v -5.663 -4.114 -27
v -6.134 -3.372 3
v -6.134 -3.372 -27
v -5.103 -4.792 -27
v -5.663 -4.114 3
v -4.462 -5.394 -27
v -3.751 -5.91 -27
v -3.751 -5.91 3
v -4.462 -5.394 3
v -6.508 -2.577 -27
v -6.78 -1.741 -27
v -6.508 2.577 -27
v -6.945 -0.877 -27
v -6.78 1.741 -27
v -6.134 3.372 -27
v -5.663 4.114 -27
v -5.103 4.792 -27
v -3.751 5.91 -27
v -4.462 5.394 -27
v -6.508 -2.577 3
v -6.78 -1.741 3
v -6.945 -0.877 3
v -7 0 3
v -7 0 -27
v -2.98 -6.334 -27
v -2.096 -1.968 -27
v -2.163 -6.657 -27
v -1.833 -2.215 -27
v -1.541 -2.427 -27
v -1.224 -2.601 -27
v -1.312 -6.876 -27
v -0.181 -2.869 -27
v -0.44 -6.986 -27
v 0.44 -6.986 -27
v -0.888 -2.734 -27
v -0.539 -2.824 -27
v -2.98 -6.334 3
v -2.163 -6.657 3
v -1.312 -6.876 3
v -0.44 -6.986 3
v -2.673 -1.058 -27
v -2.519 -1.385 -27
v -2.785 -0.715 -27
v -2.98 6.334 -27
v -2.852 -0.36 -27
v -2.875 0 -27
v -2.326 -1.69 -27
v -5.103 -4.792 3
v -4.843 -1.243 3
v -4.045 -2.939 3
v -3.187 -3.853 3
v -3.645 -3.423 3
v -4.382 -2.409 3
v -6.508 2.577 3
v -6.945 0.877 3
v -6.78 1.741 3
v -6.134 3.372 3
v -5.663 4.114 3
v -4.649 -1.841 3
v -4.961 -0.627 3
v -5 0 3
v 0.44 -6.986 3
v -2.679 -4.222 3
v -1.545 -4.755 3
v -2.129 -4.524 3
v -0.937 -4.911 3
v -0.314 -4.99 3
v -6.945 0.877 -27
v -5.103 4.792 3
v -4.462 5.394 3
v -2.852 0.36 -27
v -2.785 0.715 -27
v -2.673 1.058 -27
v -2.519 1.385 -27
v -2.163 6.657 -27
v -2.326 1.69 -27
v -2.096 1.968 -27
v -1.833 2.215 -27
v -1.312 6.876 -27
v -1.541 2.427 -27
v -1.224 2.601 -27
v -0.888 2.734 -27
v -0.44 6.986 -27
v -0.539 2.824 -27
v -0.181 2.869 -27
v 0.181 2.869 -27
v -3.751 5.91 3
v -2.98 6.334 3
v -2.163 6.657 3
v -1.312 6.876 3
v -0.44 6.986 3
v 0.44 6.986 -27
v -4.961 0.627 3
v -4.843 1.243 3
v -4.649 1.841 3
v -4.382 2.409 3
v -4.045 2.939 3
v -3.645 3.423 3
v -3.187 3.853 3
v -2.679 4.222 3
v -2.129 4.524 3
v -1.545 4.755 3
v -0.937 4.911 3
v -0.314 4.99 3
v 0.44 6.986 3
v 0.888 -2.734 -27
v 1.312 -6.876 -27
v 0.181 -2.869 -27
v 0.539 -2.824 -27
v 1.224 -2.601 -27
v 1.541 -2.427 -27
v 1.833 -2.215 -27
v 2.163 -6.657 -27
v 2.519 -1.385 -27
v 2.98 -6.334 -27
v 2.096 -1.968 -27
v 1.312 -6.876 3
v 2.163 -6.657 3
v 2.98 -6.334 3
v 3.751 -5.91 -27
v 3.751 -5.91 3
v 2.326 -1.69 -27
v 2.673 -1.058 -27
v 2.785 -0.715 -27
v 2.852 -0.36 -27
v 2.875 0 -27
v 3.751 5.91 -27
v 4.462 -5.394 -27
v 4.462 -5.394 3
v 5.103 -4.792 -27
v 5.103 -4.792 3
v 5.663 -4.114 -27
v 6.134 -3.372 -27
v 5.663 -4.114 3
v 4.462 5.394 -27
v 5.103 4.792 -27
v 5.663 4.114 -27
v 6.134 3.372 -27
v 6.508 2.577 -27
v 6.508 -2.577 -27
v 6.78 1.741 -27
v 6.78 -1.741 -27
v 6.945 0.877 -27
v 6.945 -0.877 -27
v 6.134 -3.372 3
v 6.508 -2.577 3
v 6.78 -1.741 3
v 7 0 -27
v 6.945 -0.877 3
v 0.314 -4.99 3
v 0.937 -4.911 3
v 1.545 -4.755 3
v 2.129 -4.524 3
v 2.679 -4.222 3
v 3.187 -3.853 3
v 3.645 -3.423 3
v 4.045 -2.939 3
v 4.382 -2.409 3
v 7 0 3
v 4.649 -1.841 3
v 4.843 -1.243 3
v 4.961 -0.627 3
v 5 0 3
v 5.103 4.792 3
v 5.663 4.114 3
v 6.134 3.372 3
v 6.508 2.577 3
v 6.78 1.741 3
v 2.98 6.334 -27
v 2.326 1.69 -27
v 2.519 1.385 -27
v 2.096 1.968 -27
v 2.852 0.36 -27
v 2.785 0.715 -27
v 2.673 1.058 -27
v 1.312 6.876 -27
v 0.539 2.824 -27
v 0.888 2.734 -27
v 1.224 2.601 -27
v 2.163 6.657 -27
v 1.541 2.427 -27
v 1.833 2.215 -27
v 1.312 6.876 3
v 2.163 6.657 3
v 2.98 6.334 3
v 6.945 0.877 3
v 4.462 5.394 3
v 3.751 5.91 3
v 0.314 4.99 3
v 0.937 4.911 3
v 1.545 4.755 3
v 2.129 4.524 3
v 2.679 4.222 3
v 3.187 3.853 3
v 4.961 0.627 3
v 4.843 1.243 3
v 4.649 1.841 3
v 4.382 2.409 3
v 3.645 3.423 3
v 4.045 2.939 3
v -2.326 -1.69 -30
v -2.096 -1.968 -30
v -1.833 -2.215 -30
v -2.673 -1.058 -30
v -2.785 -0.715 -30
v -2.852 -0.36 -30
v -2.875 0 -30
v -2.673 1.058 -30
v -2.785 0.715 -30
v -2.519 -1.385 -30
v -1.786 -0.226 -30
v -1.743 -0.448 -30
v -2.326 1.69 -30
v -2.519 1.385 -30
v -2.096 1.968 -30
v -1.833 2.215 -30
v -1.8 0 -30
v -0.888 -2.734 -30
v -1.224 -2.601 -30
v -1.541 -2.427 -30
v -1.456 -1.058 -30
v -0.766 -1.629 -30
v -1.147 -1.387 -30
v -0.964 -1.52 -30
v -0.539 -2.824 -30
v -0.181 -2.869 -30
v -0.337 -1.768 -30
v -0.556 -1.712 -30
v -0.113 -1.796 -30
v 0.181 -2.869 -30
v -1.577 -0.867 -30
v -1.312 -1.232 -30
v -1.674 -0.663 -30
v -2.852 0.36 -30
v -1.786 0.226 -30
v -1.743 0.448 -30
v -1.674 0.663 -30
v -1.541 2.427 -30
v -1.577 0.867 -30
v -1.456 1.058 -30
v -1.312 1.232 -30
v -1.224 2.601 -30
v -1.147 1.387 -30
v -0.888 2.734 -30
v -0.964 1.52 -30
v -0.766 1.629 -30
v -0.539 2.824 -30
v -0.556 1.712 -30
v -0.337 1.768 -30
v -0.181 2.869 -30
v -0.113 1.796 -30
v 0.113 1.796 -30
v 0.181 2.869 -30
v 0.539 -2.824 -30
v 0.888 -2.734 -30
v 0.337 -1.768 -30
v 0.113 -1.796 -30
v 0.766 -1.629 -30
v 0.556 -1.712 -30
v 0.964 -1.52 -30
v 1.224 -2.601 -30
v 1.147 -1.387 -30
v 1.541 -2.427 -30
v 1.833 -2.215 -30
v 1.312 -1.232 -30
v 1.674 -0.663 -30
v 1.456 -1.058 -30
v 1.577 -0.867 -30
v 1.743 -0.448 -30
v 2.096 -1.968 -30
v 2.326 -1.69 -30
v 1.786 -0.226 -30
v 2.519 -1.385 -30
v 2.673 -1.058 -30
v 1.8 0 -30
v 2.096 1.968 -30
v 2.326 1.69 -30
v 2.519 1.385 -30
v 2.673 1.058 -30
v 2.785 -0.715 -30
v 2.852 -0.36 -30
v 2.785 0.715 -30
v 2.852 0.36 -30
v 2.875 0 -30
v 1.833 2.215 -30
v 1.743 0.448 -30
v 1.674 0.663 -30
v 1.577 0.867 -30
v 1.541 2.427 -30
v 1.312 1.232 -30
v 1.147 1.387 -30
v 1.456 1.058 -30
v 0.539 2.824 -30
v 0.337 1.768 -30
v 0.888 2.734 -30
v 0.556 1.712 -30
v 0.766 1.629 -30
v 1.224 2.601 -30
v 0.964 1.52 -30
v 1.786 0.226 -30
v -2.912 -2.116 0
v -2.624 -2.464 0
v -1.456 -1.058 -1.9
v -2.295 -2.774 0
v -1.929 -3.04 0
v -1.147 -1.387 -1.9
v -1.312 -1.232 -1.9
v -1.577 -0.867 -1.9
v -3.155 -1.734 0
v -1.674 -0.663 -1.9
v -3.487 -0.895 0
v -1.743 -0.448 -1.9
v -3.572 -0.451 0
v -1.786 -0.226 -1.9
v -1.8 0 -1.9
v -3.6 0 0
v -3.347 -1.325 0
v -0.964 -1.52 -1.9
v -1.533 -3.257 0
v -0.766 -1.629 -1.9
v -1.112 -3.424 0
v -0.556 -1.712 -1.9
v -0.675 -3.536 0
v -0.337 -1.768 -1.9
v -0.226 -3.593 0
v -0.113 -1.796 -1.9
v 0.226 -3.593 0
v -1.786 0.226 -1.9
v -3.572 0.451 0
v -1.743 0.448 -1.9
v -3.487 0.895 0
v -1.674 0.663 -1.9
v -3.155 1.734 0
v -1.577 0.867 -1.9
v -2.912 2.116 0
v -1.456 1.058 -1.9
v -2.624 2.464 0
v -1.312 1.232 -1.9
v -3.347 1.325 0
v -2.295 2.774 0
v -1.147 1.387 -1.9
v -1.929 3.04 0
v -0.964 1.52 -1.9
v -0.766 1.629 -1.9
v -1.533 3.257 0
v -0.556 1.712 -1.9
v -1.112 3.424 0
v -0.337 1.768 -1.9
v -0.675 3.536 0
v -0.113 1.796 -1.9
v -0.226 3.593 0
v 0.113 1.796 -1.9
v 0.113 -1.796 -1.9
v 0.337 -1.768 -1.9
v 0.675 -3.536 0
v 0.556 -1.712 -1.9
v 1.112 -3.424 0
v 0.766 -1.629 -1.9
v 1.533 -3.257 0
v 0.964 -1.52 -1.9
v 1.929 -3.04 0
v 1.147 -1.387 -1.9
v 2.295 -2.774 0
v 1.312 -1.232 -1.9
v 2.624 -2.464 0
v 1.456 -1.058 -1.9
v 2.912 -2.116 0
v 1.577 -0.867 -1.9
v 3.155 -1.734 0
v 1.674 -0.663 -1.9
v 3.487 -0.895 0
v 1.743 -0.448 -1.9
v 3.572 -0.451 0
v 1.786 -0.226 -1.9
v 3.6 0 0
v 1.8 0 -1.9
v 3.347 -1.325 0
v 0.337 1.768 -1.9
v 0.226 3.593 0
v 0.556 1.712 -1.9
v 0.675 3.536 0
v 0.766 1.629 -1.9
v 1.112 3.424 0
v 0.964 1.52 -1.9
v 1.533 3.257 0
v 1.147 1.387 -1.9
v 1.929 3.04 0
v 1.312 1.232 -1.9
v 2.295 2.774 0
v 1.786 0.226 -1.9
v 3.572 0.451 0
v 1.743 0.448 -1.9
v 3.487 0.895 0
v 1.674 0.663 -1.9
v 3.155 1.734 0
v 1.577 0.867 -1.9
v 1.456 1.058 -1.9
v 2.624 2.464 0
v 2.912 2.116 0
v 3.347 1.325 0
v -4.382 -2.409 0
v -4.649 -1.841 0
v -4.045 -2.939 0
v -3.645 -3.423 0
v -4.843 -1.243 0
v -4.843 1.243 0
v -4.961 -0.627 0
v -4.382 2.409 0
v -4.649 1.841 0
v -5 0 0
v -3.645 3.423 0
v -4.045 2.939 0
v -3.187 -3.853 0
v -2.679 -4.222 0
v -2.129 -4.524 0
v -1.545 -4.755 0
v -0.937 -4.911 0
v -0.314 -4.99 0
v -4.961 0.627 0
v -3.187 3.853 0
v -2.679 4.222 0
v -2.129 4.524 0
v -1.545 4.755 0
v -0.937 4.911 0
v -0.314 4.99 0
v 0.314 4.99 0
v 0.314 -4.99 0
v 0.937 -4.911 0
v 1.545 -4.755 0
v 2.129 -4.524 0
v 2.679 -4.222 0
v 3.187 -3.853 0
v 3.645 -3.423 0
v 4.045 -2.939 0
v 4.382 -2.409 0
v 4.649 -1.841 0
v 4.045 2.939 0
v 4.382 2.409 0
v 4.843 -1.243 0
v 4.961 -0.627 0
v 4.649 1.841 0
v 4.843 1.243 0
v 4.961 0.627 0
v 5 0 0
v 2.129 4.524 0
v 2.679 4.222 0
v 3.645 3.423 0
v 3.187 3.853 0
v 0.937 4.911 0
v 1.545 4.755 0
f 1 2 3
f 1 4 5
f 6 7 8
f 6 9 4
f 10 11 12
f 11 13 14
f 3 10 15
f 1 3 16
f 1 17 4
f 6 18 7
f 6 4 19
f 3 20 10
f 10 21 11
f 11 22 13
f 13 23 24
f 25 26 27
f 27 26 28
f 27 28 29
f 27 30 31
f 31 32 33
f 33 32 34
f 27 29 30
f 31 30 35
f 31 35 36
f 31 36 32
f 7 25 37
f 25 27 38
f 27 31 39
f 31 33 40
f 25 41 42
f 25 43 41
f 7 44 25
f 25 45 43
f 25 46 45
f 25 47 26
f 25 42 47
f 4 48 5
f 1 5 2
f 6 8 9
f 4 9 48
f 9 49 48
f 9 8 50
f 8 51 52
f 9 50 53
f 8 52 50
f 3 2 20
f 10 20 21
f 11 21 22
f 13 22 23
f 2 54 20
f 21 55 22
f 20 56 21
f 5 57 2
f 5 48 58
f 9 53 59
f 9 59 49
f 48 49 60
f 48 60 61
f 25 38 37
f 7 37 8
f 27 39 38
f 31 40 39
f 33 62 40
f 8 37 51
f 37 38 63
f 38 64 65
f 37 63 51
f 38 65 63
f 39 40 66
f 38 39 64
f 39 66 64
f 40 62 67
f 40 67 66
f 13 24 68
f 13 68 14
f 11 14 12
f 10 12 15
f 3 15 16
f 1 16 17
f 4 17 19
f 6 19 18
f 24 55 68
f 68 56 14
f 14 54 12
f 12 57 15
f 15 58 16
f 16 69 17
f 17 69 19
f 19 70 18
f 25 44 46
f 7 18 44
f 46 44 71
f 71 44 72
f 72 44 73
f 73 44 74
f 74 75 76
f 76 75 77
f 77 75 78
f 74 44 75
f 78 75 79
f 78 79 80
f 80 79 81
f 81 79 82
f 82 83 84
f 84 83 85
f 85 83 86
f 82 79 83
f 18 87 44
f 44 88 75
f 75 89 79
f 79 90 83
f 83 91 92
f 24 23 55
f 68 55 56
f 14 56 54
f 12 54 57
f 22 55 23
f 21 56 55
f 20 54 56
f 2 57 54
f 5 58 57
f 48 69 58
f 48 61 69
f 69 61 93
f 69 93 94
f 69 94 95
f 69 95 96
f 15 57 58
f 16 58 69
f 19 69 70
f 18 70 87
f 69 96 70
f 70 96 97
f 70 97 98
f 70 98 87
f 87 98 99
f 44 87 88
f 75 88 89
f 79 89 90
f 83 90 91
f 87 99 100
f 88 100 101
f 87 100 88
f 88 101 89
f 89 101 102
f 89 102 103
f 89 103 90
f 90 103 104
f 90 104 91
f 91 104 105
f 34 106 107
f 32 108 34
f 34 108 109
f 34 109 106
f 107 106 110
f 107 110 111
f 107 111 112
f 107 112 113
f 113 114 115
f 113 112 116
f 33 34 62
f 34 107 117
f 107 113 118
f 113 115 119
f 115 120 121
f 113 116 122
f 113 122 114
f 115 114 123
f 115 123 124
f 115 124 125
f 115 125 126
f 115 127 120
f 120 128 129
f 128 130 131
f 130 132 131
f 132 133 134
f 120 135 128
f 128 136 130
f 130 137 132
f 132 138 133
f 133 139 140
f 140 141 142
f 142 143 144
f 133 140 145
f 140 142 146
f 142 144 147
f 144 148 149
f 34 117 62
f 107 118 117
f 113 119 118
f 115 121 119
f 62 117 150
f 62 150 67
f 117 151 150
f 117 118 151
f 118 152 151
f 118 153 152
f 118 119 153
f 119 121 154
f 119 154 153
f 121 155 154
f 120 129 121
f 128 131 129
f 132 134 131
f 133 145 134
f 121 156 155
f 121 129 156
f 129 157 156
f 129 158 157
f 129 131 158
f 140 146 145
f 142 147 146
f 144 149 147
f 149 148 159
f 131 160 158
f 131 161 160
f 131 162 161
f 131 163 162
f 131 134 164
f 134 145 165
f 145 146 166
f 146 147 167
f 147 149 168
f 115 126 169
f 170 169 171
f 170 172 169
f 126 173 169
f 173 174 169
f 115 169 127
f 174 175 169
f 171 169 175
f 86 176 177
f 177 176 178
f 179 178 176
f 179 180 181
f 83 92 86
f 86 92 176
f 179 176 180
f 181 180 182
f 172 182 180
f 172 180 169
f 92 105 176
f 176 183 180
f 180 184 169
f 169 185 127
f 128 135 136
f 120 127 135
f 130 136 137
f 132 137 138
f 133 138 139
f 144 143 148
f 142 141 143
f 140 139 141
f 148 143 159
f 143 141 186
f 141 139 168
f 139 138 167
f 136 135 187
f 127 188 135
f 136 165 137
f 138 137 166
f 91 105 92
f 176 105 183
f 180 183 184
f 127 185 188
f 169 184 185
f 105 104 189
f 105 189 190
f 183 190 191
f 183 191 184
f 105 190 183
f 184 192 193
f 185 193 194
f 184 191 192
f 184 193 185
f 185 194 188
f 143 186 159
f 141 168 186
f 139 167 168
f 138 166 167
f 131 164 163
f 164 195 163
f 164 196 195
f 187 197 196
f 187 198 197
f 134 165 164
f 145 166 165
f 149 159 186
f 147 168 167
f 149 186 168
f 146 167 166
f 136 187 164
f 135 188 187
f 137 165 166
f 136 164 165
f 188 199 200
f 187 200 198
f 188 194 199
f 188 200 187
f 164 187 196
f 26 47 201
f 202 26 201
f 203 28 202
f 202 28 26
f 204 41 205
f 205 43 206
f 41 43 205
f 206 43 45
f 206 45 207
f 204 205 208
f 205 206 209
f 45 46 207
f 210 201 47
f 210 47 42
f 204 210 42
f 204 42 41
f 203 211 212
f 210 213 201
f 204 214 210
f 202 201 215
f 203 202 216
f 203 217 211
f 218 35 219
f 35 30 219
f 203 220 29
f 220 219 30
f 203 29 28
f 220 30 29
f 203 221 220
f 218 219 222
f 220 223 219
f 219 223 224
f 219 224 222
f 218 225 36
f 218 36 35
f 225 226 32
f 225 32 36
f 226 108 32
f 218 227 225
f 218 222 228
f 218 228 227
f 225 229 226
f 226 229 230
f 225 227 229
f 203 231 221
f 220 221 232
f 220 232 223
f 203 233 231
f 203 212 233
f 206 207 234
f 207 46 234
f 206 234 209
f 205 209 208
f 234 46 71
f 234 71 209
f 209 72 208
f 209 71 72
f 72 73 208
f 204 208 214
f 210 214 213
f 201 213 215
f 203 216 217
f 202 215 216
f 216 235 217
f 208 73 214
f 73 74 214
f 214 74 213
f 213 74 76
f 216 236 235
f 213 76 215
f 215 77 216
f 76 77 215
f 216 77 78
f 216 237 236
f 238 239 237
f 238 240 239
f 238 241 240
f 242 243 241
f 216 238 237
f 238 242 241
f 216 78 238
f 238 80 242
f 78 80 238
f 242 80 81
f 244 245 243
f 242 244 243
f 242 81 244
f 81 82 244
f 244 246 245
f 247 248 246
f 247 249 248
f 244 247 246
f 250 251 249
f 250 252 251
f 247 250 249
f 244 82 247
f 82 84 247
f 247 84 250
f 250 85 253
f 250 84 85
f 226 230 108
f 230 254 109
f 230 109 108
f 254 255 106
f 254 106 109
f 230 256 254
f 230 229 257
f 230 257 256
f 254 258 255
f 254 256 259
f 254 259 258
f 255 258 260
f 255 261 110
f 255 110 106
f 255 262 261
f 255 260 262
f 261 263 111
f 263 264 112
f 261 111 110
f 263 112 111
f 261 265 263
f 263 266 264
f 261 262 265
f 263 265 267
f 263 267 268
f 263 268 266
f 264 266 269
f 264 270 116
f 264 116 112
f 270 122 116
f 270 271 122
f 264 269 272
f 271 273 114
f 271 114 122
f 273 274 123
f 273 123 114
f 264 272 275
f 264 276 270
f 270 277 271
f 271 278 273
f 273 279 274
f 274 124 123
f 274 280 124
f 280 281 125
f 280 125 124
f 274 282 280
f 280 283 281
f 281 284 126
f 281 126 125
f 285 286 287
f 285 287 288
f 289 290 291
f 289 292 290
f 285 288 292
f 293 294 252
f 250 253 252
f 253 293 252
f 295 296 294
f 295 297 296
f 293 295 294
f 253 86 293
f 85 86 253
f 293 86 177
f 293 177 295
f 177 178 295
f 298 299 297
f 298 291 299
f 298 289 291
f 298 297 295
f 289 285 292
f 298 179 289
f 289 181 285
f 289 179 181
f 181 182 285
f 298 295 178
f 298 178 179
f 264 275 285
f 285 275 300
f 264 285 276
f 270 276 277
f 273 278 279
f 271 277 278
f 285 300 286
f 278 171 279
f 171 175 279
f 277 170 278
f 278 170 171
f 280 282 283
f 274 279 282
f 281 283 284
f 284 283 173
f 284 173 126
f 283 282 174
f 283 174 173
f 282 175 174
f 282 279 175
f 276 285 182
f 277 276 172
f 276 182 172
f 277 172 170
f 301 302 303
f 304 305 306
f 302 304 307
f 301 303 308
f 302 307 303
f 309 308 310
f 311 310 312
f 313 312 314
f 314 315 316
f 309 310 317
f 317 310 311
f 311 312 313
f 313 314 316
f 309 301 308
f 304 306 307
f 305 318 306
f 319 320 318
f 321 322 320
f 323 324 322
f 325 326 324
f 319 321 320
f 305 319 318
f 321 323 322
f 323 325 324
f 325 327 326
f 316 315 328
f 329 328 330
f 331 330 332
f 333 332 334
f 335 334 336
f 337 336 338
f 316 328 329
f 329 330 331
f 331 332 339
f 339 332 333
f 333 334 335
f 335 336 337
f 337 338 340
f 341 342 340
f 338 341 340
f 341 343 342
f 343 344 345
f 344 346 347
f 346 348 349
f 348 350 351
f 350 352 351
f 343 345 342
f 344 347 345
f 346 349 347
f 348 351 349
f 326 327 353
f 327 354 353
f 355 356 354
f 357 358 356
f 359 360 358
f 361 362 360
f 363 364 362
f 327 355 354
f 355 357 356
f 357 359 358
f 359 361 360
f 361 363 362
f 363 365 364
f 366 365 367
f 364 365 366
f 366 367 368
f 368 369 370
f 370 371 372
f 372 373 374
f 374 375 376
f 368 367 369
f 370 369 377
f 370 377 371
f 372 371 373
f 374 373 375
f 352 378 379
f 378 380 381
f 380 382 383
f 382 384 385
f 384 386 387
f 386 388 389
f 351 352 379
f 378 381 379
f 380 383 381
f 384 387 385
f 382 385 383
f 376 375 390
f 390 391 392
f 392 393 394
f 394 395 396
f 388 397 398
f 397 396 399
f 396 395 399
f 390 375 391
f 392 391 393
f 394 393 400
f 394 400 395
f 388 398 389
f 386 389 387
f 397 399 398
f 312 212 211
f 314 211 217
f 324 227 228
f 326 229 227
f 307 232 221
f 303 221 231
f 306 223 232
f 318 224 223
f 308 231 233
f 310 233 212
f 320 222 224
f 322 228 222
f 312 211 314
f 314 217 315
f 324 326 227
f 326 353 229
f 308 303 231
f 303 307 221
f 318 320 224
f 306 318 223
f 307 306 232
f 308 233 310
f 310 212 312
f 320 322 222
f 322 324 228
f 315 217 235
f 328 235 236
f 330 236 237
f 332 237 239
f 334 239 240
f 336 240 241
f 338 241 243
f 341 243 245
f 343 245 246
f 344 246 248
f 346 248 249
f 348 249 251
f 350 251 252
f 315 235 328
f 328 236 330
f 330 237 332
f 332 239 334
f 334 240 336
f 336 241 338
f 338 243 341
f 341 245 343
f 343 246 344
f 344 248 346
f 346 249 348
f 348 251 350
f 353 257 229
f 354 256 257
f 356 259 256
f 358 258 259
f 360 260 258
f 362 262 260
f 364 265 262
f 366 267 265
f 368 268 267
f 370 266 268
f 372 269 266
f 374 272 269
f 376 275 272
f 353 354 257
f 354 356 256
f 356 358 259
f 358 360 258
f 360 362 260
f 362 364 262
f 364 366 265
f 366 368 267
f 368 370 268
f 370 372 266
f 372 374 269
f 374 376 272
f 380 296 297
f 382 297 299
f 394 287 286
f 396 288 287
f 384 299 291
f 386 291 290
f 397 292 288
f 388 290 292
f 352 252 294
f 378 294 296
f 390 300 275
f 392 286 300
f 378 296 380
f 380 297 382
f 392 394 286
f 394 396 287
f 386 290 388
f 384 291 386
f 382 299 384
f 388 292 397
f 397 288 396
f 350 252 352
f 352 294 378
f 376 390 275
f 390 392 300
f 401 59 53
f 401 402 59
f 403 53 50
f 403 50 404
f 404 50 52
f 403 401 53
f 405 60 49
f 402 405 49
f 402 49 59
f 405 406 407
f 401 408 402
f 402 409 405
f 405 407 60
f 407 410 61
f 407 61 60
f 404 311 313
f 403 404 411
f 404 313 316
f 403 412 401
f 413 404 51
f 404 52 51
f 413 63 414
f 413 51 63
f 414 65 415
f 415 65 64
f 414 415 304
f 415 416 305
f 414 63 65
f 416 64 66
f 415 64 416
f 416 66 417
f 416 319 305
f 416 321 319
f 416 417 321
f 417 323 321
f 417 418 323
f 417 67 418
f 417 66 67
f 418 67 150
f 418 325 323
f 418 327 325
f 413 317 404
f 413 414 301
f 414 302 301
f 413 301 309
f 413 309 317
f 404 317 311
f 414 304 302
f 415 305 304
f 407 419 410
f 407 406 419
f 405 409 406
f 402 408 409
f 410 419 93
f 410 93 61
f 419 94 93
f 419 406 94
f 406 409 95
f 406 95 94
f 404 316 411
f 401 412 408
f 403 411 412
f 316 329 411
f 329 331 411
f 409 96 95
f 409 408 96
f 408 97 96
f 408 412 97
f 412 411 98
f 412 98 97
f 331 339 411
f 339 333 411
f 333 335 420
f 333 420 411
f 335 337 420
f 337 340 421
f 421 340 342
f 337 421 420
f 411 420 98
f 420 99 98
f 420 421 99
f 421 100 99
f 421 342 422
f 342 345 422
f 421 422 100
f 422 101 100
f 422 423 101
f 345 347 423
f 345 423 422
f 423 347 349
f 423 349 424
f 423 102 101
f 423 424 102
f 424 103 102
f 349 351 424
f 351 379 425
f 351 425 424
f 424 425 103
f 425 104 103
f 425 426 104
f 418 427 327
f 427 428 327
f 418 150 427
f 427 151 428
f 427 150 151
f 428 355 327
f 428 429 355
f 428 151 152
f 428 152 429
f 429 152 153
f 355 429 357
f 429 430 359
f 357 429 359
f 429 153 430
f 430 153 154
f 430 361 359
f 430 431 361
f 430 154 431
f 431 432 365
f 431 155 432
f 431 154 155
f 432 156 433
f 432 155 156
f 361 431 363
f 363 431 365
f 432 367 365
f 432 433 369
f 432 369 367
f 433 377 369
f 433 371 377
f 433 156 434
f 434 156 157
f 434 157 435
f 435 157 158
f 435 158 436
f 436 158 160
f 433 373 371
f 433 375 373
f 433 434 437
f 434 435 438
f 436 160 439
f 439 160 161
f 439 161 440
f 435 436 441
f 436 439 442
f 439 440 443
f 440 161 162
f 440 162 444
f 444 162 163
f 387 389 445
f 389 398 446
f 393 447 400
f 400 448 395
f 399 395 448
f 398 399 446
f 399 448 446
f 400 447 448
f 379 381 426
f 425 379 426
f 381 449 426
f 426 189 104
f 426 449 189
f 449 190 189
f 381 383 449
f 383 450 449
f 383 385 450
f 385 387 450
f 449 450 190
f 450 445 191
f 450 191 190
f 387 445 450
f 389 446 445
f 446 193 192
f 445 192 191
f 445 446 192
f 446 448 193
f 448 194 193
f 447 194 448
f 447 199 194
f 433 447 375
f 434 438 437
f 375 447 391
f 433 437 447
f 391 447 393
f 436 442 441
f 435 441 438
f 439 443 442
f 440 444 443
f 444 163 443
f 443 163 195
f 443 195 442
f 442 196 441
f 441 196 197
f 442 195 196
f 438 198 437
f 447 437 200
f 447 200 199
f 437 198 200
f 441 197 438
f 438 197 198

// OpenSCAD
$fn = 50;


difference() {
	union() {
		translate(v = [0, 0, -27.0000000000]) {
			cylinder(h = 30, r = 7.0000000000);
		}
		#translate(v = [0, 0, -30.0000000000]) {
			cylinder(h = 30, r = 2.8750000000);
		}
	}
	union() {
		translate(v = [0, 0, 0]) {
			rotate(a = [0, 0, 0]) {
				difference() {
					union() {
						translate(v = [0, 0, -30.0000000000]) {
							cylinder(h = 30, r = 1.5000000000);
						}
						translate(v = [0, 0, -1.9000000000]) {
							cylinder(h = 1.9000000000, r1 = 1.8000000000, r2 = 3.6000000000);
						}
						translate(v = [0, 0, -30.0000000000]) {
							cylinder(h = 30, r = 1.8000000000);
						}
						translate(v = [0, 0, -30.0000000000]) {
							cylinder(h = 30, r = 1.5000000000);
						}
					}
					union();
				}
			}
		}
		#cylinder(h = 3, r = 5.0000000000);
	}
}
